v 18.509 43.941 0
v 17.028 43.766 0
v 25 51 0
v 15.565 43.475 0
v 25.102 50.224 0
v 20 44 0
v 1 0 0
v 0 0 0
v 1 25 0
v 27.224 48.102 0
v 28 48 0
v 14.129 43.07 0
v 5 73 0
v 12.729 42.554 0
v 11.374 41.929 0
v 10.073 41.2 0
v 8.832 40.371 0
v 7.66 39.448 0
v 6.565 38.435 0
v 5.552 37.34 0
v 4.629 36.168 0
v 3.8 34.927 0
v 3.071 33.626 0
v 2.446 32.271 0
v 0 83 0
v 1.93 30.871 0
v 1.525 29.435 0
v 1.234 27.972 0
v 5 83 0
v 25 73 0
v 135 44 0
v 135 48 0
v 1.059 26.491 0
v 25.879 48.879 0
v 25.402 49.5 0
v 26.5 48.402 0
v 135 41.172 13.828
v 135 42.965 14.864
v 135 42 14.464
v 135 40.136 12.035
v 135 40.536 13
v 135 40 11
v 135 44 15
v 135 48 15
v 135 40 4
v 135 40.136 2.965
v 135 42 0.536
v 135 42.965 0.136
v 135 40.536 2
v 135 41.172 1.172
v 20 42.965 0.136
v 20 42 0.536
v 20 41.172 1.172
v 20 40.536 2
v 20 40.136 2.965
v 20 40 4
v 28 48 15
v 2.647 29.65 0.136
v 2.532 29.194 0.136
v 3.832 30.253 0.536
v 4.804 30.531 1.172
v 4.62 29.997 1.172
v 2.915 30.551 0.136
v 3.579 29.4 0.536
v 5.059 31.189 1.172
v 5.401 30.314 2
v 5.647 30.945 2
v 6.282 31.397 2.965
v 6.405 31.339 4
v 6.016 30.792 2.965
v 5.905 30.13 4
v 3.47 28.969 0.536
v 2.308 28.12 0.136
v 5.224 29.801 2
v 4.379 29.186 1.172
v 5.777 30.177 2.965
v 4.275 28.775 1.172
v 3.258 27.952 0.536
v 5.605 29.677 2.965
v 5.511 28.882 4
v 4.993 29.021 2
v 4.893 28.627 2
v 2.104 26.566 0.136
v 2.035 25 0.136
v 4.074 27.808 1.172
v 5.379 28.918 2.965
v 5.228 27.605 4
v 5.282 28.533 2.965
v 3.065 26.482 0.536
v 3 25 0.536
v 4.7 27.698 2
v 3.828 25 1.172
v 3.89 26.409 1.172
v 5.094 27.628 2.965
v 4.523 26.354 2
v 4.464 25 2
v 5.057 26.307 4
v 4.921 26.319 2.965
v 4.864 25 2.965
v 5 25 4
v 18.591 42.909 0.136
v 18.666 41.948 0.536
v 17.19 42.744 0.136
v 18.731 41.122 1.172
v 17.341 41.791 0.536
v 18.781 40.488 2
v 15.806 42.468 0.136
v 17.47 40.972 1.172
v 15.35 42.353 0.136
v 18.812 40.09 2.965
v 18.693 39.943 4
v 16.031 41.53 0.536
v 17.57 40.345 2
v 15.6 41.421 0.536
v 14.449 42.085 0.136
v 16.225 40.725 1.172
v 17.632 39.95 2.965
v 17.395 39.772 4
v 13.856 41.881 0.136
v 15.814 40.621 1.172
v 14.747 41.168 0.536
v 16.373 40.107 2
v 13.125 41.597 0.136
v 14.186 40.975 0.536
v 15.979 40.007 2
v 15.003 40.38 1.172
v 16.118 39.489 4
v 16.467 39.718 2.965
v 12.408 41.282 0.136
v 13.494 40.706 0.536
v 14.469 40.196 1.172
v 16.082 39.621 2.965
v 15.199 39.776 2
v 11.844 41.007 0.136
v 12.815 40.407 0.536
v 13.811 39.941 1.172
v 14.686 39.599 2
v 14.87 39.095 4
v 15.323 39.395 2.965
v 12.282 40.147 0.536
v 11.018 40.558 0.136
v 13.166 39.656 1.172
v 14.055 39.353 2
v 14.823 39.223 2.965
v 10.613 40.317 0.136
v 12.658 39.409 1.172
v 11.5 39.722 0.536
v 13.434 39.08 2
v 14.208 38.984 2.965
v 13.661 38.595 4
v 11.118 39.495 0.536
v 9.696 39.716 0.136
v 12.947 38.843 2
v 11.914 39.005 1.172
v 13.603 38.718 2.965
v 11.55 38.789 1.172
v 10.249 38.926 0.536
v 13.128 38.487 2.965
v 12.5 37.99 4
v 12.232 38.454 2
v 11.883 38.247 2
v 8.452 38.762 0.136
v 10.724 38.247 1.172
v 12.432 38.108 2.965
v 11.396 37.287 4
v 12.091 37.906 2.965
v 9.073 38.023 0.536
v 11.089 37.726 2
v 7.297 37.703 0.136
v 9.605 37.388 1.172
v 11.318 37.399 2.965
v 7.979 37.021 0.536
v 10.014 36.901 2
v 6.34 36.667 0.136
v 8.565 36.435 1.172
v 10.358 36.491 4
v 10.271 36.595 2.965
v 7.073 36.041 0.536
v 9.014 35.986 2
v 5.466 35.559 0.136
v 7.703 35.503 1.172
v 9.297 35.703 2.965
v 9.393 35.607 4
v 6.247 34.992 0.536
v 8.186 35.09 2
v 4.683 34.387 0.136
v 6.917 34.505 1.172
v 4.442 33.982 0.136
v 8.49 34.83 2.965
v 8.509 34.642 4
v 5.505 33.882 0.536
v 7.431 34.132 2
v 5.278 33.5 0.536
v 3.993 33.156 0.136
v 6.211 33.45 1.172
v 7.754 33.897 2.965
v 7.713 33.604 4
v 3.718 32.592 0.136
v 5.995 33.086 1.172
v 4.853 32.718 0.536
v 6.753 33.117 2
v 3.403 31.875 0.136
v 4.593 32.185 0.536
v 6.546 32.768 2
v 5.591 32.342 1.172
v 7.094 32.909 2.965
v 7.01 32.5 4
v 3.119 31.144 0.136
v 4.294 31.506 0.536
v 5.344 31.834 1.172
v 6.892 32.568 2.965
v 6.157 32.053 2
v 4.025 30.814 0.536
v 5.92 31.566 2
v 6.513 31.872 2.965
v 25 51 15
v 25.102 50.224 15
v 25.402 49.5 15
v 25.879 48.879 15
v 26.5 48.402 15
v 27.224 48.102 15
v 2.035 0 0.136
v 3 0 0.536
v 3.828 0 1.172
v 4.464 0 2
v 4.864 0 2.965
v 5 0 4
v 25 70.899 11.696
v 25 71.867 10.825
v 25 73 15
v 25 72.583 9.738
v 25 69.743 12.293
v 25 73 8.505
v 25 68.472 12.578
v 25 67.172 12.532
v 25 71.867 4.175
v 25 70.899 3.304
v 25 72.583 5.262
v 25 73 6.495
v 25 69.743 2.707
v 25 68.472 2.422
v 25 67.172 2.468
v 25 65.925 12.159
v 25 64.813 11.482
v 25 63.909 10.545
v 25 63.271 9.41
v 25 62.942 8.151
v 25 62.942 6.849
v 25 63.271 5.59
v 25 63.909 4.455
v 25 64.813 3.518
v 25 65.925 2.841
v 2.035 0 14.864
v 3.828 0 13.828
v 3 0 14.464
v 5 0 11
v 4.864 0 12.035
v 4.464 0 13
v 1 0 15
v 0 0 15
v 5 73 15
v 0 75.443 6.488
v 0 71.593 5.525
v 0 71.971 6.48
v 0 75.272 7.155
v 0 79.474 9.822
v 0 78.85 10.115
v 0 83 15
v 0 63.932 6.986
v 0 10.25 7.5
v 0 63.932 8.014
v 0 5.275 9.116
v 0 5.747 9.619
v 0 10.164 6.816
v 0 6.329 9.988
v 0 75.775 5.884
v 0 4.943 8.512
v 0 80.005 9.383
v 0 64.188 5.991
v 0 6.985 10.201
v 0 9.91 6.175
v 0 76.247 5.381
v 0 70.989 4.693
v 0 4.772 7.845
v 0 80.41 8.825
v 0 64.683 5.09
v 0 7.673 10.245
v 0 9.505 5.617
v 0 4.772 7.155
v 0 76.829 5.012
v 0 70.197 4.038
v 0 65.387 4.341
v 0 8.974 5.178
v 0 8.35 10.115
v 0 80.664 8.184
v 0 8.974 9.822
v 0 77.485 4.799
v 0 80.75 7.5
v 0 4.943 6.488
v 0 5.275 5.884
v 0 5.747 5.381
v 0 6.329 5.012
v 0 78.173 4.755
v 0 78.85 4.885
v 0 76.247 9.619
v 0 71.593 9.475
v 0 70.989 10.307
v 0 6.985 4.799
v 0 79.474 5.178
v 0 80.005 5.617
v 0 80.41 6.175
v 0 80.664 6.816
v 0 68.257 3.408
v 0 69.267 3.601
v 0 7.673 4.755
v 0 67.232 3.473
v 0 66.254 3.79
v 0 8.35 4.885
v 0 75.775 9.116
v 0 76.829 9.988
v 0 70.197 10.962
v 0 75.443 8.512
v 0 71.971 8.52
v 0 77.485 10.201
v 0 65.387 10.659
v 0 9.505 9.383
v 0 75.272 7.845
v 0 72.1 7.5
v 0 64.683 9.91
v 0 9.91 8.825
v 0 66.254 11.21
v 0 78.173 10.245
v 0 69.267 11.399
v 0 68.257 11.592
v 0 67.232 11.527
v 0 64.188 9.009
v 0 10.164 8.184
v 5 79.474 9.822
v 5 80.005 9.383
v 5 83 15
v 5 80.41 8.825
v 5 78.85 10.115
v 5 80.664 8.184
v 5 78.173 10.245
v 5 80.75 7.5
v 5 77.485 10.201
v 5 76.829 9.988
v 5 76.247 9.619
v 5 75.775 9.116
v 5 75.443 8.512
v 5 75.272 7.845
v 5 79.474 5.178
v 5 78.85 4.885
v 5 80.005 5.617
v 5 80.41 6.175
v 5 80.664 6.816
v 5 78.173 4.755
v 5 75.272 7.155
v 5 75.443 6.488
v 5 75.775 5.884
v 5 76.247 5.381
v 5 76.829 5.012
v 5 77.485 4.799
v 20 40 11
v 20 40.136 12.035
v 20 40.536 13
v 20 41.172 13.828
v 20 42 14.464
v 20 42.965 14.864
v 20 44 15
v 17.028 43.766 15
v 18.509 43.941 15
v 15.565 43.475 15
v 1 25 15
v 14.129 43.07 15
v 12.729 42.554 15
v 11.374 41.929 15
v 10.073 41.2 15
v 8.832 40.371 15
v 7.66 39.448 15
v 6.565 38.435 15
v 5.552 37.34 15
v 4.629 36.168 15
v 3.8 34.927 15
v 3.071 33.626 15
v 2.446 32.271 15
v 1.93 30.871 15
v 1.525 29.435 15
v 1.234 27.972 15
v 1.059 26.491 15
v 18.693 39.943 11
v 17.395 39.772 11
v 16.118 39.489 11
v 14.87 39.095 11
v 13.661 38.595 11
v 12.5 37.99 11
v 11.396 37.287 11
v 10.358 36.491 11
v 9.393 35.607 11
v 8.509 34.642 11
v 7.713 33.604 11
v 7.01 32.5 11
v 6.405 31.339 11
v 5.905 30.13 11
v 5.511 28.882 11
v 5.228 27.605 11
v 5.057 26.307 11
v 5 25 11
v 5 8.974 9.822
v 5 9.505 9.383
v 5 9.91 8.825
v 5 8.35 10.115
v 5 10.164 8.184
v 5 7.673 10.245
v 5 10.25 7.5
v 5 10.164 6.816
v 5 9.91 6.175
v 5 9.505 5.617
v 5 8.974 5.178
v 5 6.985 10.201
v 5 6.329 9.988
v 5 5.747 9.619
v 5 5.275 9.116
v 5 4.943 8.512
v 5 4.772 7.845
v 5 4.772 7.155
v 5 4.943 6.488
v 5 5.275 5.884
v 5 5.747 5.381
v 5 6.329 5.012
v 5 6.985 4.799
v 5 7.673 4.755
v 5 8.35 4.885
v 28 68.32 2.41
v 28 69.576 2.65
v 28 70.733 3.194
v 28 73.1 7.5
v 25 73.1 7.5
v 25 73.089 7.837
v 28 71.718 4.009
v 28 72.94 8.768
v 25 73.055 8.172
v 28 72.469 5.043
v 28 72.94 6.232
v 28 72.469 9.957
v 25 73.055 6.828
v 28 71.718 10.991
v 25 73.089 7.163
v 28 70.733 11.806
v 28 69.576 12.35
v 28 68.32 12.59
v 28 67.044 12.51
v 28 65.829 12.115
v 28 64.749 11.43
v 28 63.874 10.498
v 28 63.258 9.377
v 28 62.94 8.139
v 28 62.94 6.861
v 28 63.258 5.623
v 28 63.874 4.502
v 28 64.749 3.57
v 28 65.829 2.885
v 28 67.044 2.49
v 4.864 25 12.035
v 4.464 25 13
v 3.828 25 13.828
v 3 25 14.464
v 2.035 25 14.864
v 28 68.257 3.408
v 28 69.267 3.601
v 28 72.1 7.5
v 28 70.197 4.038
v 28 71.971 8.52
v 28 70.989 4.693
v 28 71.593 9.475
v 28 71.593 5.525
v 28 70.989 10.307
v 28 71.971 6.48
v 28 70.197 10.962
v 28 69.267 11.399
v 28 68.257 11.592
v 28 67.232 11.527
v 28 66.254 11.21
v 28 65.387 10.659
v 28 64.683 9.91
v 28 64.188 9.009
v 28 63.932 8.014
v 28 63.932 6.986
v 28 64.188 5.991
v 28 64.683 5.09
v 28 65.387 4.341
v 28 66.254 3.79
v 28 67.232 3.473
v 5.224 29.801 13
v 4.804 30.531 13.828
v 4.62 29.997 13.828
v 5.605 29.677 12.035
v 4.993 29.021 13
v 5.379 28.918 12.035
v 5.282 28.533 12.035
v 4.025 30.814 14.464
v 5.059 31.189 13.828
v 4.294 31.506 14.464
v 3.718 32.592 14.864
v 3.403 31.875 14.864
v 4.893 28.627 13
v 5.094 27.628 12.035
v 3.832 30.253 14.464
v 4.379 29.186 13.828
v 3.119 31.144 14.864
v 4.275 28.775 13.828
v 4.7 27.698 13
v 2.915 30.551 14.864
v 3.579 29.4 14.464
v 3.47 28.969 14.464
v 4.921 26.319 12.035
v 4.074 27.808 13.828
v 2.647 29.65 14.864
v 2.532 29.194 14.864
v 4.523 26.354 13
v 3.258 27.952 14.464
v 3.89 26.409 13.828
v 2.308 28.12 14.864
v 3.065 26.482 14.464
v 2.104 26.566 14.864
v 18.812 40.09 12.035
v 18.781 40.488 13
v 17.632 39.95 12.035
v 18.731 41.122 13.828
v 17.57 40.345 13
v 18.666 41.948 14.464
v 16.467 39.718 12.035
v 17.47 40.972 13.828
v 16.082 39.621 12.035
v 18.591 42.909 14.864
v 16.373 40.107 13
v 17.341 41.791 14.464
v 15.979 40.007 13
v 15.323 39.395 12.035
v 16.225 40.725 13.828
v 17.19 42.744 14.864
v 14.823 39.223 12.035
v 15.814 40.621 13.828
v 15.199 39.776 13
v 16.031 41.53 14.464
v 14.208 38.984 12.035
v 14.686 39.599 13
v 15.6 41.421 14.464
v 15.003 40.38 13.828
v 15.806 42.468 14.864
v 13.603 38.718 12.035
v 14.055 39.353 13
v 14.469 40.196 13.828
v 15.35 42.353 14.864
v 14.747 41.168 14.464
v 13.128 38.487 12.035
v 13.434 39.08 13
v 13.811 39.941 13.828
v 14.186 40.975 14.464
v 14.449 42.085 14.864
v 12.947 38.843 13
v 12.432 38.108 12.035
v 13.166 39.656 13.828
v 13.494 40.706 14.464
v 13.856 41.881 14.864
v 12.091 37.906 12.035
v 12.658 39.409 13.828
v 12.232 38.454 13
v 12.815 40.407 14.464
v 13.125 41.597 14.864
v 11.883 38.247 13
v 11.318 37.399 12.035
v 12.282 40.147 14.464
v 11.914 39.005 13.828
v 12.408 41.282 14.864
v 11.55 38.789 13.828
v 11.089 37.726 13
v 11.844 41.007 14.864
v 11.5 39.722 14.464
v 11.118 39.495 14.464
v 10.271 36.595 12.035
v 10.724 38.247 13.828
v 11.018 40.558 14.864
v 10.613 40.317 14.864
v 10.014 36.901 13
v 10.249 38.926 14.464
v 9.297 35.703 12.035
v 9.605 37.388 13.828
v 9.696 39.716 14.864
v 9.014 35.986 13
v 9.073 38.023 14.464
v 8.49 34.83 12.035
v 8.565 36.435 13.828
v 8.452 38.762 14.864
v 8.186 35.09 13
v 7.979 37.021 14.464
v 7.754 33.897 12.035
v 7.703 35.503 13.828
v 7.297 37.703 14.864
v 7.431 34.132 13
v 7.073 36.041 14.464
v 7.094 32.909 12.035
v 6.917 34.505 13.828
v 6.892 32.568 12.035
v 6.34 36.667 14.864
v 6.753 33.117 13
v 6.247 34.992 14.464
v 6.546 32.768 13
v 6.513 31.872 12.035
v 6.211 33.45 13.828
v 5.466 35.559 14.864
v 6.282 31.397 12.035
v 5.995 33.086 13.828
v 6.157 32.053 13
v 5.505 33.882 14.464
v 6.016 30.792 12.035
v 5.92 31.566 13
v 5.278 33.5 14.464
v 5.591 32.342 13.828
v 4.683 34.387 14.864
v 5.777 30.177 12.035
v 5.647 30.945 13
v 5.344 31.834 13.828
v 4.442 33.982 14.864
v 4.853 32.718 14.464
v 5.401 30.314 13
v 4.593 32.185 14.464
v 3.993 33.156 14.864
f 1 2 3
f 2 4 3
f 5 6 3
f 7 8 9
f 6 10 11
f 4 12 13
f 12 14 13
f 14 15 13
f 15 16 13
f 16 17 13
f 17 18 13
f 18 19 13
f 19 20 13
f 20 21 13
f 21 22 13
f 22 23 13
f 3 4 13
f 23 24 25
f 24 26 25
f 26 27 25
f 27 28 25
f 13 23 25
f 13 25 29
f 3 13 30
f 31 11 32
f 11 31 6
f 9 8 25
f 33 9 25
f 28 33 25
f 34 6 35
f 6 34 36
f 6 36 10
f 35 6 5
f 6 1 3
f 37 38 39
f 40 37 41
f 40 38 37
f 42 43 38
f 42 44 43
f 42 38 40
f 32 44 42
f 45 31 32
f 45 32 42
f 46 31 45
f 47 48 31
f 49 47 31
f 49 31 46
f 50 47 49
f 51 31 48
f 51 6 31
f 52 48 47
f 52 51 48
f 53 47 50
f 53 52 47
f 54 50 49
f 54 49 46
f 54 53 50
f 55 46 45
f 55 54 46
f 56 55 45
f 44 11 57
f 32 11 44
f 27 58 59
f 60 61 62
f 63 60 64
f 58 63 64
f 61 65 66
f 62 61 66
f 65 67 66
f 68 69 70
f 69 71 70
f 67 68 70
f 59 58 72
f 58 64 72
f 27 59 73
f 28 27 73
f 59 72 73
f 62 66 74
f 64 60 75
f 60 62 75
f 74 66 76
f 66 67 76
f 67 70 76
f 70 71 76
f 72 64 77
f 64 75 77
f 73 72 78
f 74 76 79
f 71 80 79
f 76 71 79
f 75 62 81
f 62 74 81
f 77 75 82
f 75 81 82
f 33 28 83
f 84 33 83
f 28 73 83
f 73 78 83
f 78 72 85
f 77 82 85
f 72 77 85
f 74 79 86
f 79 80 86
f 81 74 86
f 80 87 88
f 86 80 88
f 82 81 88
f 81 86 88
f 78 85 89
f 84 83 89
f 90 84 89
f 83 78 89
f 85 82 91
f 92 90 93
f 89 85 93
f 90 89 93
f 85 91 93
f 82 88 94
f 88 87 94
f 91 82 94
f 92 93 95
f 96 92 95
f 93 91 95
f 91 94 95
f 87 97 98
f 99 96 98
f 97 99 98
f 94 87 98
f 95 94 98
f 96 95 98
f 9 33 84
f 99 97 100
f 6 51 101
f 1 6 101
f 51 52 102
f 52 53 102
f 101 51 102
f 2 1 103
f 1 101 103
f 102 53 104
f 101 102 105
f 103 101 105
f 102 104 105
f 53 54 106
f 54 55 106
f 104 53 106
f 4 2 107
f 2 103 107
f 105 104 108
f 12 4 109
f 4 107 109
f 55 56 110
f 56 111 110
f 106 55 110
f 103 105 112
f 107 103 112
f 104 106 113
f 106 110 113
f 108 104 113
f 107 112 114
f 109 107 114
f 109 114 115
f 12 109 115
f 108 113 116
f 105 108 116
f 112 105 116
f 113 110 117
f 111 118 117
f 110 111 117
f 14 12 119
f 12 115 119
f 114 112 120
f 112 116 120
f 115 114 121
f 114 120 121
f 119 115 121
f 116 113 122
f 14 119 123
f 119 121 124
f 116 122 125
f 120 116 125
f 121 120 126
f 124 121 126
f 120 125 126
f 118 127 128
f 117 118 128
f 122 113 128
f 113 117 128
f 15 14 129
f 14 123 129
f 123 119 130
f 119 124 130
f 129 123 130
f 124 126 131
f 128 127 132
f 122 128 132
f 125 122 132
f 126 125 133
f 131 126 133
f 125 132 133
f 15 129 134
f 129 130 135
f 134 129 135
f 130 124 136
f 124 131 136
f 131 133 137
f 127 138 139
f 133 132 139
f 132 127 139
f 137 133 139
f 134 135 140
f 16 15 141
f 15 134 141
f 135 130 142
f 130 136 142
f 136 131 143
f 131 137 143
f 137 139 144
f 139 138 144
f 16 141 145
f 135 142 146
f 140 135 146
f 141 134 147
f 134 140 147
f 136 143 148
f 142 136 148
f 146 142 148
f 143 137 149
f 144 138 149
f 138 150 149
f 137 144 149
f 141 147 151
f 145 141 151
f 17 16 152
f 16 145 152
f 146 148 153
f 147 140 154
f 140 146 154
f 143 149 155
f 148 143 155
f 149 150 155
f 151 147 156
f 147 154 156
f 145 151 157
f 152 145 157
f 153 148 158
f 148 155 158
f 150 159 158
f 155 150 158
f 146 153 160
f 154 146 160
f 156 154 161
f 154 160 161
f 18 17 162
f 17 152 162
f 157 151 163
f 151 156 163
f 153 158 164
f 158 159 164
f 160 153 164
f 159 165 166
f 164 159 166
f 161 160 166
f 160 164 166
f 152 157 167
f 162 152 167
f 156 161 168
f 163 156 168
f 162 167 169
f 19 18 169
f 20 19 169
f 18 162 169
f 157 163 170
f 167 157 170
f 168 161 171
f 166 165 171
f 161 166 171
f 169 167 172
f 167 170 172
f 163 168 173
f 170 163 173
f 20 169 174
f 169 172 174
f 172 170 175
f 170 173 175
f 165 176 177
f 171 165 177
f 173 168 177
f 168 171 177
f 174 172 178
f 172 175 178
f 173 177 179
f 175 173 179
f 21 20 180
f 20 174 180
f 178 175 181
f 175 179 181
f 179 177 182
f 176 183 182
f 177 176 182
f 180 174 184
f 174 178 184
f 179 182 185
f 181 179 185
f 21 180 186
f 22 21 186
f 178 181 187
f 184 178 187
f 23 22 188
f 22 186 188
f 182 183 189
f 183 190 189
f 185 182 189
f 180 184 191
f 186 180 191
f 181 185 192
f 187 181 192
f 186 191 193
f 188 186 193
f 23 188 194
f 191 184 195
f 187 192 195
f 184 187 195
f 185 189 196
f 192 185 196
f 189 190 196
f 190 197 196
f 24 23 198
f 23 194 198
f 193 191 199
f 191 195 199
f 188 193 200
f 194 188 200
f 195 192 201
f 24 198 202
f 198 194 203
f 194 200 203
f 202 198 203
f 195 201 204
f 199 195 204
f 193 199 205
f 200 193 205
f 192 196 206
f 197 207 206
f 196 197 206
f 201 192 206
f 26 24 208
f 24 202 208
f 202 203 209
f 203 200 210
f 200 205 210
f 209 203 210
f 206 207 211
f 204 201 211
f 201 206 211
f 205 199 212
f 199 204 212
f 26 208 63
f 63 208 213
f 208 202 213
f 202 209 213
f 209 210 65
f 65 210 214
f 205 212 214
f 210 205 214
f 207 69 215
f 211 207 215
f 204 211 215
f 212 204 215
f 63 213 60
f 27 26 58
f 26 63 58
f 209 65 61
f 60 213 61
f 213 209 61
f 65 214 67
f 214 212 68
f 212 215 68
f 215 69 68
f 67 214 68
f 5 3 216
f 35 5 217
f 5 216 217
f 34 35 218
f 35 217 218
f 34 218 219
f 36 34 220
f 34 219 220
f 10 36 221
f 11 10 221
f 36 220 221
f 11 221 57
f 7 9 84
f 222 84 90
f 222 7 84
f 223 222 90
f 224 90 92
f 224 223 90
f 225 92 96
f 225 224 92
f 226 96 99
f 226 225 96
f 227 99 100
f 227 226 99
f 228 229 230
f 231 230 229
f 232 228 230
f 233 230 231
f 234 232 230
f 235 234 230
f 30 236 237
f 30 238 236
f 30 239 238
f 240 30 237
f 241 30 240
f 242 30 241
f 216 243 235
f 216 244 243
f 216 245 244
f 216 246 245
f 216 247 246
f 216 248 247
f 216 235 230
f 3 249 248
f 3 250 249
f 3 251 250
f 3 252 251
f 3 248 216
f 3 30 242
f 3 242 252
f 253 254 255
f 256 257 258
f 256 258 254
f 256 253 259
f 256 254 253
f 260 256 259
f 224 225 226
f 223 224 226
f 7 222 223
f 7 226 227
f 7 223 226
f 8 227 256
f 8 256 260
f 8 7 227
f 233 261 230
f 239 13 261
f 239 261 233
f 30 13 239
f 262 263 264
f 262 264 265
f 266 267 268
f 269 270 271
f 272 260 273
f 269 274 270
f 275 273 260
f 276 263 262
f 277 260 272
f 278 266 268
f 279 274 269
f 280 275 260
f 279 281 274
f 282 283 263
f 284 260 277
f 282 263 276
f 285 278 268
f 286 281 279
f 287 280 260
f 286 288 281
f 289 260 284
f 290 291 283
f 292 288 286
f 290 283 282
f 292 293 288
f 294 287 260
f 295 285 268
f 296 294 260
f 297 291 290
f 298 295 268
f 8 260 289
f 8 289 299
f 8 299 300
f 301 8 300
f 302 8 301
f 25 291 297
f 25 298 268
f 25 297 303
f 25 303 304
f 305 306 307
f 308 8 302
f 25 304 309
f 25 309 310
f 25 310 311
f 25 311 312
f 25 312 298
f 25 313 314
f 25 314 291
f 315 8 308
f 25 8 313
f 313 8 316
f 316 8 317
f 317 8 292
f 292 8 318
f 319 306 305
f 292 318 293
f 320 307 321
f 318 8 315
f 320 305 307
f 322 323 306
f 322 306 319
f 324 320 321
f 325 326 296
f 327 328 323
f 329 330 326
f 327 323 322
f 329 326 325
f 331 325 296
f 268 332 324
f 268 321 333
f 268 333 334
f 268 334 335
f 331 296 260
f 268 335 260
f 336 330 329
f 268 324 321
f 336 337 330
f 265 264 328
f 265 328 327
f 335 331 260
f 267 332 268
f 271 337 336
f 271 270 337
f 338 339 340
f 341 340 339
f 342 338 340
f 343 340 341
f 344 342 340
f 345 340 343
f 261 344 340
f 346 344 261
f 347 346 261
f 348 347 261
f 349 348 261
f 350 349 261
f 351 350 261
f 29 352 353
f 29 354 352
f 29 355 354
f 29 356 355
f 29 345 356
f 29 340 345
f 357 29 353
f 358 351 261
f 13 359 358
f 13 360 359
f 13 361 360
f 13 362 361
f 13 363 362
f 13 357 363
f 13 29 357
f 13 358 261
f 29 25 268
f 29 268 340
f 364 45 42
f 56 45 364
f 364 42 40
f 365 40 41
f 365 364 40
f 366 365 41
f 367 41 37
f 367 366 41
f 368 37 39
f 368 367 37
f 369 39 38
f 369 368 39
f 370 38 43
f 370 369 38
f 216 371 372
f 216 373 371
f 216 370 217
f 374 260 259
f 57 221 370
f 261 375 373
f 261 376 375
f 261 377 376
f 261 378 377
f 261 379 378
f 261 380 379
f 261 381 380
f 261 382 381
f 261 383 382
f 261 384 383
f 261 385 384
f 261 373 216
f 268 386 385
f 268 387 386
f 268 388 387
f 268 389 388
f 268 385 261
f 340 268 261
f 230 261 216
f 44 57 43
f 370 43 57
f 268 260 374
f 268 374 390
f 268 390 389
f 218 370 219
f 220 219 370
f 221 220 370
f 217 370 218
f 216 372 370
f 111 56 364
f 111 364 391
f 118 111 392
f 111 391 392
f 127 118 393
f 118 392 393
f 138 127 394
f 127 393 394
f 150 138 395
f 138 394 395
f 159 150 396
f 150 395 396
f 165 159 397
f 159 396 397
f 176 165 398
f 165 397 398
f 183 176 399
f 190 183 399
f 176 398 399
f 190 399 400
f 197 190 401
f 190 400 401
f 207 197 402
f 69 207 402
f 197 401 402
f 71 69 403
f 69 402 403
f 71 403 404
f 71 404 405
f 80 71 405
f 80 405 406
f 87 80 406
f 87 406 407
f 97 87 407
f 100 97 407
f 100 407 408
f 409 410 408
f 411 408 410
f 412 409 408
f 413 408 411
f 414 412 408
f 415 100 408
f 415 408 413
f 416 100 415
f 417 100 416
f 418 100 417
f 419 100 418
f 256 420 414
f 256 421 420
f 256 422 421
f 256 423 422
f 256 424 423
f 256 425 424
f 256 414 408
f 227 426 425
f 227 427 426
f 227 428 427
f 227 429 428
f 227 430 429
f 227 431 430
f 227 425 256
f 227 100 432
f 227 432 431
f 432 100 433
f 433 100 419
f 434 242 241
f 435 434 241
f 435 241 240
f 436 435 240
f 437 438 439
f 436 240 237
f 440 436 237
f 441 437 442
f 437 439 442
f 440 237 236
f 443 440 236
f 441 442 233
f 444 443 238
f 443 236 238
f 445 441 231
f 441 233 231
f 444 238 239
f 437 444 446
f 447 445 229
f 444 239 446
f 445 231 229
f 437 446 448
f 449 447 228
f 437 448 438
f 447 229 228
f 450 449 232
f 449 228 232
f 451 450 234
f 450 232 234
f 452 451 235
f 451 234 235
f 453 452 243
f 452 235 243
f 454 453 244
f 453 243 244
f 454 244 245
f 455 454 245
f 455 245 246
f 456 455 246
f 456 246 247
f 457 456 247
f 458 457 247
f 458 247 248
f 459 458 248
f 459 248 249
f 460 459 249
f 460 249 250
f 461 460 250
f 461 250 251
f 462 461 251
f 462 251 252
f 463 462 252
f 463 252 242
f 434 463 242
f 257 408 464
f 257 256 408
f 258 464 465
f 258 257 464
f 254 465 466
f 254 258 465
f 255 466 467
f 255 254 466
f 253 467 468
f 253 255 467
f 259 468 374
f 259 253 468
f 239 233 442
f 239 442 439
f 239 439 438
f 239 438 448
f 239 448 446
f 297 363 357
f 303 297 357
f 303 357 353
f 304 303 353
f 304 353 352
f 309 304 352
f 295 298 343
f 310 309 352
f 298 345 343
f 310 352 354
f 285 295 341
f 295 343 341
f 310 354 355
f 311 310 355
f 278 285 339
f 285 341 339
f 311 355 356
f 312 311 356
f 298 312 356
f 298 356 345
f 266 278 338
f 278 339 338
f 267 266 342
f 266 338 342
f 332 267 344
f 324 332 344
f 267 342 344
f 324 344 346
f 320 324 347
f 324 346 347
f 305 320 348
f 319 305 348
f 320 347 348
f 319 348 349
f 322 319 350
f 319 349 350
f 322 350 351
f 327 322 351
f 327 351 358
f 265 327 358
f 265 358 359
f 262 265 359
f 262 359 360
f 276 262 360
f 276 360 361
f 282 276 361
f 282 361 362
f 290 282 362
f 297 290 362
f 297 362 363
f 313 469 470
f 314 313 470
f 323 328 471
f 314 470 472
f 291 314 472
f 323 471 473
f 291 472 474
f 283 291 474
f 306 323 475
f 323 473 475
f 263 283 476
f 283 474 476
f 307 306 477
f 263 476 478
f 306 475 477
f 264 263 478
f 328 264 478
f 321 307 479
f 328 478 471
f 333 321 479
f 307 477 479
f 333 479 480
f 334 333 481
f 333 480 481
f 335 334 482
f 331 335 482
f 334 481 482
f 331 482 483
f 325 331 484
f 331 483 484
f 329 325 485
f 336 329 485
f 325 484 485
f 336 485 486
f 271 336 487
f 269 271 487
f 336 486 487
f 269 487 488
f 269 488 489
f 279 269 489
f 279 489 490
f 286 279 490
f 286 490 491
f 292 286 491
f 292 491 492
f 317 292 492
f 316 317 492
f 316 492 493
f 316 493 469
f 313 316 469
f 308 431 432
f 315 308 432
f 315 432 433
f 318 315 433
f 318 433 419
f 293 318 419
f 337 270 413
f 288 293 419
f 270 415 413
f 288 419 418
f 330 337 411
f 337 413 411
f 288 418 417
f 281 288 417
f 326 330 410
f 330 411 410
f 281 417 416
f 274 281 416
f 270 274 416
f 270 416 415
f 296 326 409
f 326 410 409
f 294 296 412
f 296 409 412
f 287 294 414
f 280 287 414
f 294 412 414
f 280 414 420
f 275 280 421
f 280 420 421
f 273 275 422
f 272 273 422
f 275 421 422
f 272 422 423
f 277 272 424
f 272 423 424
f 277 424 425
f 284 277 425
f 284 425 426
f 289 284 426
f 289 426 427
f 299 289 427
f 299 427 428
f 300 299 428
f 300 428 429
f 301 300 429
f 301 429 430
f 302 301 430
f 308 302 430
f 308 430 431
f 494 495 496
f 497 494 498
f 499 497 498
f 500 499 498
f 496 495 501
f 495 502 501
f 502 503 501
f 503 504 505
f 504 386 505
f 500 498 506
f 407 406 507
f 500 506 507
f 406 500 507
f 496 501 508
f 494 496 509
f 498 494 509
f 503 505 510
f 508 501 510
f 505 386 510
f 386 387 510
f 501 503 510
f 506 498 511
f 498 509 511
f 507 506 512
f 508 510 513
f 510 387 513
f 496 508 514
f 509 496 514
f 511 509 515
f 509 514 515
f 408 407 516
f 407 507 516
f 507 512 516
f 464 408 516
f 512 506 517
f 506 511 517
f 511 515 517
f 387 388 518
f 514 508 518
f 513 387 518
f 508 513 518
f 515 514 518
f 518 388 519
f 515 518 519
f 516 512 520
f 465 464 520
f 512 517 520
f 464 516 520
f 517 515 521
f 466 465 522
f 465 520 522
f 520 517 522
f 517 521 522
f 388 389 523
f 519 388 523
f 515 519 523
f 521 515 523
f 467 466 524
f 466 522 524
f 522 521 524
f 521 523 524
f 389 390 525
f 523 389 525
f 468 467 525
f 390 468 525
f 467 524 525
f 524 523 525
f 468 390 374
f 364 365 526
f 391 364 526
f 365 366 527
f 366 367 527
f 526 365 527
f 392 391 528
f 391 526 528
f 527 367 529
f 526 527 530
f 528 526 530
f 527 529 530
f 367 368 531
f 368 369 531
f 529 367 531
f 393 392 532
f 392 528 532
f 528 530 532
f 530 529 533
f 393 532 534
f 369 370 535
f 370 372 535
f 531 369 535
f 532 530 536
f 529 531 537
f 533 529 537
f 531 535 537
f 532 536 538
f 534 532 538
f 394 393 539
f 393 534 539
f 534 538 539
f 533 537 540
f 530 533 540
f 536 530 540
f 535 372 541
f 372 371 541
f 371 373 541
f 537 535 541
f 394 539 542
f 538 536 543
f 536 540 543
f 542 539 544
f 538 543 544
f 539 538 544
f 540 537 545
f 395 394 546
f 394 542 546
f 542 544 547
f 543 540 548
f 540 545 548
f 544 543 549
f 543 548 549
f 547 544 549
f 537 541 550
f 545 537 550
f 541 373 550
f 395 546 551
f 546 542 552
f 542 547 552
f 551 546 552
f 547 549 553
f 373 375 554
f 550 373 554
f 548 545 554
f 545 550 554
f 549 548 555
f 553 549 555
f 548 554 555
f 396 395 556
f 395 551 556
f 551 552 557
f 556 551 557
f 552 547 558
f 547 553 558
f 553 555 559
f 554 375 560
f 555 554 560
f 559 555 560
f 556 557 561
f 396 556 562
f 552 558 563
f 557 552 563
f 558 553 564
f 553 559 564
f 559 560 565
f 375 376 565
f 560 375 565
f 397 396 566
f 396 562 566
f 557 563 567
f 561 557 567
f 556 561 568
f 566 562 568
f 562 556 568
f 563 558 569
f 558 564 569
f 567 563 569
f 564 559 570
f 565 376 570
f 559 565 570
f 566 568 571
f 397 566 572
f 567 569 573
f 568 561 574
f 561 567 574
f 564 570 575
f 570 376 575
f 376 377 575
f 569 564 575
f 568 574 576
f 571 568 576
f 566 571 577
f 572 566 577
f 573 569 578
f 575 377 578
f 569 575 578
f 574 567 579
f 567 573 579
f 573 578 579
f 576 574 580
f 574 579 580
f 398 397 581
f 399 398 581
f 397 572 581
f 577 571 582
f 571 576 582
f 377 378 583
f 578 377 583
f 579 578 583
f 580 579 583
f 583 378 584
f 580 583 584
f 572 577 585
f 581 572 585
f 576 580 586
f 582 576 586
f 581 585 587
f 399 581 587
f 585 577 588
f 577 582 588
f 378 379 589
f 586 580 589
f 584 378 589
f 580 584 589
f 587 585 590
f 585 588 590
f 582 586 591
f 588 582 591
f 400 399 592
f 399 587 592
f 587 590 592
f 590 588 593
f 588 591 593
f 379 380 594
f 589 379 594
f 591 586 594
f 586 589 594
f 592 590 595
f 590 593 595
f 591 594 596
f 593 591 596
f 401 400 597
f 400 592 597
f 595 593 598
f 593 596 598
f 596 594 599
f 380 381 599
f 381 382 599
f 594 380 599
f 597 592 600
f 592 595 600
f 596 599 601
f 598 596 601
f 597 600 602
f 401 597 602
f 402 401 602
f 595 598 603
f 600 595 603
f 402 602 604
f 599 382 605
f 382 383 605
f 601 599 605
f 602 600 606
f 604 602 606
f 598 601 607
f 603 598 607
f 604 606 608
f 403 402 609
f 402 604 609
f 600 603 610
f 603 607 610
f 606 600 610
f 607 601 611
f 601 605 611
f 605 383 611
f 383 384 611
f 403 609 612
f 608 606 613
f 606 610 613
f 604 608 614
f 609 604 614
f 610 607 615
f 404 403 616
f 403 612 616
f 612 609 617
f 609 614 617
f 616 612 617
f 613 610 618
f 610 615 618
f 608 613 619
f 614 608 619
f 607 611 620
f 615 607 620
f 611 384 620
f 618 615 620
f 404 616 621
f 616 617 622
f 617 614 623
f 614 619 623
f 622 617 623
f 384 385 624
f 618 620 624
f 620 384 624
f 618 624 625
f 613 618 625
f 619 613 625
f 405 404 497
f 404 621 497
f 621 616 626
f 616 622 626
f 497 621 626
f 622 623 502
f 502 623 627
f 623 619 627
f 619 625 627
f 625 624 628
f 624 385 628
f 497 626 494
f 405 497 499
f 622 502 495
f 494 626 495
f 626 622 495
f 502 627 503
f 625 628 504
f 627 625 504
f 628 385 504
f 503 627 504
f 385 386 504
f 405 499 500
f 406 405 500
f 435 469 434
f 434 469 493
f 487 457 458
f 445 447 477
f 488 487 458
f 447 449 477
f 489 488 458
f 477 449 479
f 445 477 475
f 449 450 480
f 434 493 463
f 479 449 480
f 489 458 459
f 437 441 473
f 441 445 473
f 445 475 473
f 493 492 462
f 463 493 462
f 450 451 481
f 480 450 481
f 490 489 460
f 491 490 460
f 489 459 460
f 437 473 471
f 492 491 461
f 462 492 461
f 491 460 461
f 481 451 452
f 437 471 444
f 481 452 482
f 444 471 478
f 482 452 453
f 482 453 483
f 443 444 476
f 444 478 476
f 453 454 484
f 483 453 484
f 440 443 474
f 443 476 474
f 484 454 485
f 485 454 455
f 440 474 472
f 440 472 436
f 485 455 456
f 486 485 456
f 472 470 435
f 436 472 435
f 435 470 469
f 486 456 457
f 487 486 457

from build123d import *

# Parameters (mm, degrees)
PAD_DEPTH       = 15
FILLET_R        = 3
FILLET001_R     = 15
SKETCH001_R     = 2.75
POCKET_DEPTH    = 5.001
SKETCH002_R     = 5.1
PAD001_DEPTH    = 3
SKETCH003_R     = 4.1
POCKET001_DEPTH = 28.001
FILLET002_R     = 4


with BuildPart() as part:
    # Sketch → Pad (new body)
    with BuildSketch(Plane.XY):
        Polygon((0, 0), (0, 83), (5, 83), (5, 73), (25, 73), (25, 48), (135, 48), (135, 40), (5, 40), (5, 0), align=None)
    extrude(amount=PAD_DEPTH)

    # Fillet
    fillet_edges = [part.edges().sort_by_distance(p)[0] for p in [
        (25, 48, 7.5),
    ]]
    fillet(fillet_edges, radius=FILLET_R)

    # Fillet001
    fillet001_edges = [part.edges().sort_by_distance(p)[0] for p in [
        (5, 40, 7.5),
    ]]
    fillet(fillet001_edges, radius=FILLET001_R)

    # Sketch001 → Pocket (cut, through all)
    with BuildSketch(Plane.YZ.offset(5)):
        with Locations((7.5, 7.5)):
            Circle(SKETCH001_R)
        with Locations((78, 7.5)):
            Circle(SKETCH001_R)
    extrude(amount=-POCKET_DEPTH, mode=Mode.SUBTRACT)

    # Sketch002 → Pad001 (new body)
    with BuildSketch(Plane.YZ.offset(25)):
        with Locations((68, 7.5)):
            Circle(SKETCH002_R)
    extrude(amount=PAD001_DEPTH)

    # Sketch003 → Pocket001 (cut, through all)
    with BuildSketch(Plane.YZ.offset(28)):
        with Locations((68, 7.5)):
            Circle(SKETCH003_R)
    extrude(amount=-POCKET001_DEPTH, mode=Mode.SUBTRACT)

    # Fillet002
    fillet002_edges = [part.edges().sort_by_distance(p)[0] for p in [
        (77.5, 40, 15),
        (77.5, 40, 0),
    ]]
    fillet(fillet002_edges, radius=FILLET002_R)


solid = part.part
